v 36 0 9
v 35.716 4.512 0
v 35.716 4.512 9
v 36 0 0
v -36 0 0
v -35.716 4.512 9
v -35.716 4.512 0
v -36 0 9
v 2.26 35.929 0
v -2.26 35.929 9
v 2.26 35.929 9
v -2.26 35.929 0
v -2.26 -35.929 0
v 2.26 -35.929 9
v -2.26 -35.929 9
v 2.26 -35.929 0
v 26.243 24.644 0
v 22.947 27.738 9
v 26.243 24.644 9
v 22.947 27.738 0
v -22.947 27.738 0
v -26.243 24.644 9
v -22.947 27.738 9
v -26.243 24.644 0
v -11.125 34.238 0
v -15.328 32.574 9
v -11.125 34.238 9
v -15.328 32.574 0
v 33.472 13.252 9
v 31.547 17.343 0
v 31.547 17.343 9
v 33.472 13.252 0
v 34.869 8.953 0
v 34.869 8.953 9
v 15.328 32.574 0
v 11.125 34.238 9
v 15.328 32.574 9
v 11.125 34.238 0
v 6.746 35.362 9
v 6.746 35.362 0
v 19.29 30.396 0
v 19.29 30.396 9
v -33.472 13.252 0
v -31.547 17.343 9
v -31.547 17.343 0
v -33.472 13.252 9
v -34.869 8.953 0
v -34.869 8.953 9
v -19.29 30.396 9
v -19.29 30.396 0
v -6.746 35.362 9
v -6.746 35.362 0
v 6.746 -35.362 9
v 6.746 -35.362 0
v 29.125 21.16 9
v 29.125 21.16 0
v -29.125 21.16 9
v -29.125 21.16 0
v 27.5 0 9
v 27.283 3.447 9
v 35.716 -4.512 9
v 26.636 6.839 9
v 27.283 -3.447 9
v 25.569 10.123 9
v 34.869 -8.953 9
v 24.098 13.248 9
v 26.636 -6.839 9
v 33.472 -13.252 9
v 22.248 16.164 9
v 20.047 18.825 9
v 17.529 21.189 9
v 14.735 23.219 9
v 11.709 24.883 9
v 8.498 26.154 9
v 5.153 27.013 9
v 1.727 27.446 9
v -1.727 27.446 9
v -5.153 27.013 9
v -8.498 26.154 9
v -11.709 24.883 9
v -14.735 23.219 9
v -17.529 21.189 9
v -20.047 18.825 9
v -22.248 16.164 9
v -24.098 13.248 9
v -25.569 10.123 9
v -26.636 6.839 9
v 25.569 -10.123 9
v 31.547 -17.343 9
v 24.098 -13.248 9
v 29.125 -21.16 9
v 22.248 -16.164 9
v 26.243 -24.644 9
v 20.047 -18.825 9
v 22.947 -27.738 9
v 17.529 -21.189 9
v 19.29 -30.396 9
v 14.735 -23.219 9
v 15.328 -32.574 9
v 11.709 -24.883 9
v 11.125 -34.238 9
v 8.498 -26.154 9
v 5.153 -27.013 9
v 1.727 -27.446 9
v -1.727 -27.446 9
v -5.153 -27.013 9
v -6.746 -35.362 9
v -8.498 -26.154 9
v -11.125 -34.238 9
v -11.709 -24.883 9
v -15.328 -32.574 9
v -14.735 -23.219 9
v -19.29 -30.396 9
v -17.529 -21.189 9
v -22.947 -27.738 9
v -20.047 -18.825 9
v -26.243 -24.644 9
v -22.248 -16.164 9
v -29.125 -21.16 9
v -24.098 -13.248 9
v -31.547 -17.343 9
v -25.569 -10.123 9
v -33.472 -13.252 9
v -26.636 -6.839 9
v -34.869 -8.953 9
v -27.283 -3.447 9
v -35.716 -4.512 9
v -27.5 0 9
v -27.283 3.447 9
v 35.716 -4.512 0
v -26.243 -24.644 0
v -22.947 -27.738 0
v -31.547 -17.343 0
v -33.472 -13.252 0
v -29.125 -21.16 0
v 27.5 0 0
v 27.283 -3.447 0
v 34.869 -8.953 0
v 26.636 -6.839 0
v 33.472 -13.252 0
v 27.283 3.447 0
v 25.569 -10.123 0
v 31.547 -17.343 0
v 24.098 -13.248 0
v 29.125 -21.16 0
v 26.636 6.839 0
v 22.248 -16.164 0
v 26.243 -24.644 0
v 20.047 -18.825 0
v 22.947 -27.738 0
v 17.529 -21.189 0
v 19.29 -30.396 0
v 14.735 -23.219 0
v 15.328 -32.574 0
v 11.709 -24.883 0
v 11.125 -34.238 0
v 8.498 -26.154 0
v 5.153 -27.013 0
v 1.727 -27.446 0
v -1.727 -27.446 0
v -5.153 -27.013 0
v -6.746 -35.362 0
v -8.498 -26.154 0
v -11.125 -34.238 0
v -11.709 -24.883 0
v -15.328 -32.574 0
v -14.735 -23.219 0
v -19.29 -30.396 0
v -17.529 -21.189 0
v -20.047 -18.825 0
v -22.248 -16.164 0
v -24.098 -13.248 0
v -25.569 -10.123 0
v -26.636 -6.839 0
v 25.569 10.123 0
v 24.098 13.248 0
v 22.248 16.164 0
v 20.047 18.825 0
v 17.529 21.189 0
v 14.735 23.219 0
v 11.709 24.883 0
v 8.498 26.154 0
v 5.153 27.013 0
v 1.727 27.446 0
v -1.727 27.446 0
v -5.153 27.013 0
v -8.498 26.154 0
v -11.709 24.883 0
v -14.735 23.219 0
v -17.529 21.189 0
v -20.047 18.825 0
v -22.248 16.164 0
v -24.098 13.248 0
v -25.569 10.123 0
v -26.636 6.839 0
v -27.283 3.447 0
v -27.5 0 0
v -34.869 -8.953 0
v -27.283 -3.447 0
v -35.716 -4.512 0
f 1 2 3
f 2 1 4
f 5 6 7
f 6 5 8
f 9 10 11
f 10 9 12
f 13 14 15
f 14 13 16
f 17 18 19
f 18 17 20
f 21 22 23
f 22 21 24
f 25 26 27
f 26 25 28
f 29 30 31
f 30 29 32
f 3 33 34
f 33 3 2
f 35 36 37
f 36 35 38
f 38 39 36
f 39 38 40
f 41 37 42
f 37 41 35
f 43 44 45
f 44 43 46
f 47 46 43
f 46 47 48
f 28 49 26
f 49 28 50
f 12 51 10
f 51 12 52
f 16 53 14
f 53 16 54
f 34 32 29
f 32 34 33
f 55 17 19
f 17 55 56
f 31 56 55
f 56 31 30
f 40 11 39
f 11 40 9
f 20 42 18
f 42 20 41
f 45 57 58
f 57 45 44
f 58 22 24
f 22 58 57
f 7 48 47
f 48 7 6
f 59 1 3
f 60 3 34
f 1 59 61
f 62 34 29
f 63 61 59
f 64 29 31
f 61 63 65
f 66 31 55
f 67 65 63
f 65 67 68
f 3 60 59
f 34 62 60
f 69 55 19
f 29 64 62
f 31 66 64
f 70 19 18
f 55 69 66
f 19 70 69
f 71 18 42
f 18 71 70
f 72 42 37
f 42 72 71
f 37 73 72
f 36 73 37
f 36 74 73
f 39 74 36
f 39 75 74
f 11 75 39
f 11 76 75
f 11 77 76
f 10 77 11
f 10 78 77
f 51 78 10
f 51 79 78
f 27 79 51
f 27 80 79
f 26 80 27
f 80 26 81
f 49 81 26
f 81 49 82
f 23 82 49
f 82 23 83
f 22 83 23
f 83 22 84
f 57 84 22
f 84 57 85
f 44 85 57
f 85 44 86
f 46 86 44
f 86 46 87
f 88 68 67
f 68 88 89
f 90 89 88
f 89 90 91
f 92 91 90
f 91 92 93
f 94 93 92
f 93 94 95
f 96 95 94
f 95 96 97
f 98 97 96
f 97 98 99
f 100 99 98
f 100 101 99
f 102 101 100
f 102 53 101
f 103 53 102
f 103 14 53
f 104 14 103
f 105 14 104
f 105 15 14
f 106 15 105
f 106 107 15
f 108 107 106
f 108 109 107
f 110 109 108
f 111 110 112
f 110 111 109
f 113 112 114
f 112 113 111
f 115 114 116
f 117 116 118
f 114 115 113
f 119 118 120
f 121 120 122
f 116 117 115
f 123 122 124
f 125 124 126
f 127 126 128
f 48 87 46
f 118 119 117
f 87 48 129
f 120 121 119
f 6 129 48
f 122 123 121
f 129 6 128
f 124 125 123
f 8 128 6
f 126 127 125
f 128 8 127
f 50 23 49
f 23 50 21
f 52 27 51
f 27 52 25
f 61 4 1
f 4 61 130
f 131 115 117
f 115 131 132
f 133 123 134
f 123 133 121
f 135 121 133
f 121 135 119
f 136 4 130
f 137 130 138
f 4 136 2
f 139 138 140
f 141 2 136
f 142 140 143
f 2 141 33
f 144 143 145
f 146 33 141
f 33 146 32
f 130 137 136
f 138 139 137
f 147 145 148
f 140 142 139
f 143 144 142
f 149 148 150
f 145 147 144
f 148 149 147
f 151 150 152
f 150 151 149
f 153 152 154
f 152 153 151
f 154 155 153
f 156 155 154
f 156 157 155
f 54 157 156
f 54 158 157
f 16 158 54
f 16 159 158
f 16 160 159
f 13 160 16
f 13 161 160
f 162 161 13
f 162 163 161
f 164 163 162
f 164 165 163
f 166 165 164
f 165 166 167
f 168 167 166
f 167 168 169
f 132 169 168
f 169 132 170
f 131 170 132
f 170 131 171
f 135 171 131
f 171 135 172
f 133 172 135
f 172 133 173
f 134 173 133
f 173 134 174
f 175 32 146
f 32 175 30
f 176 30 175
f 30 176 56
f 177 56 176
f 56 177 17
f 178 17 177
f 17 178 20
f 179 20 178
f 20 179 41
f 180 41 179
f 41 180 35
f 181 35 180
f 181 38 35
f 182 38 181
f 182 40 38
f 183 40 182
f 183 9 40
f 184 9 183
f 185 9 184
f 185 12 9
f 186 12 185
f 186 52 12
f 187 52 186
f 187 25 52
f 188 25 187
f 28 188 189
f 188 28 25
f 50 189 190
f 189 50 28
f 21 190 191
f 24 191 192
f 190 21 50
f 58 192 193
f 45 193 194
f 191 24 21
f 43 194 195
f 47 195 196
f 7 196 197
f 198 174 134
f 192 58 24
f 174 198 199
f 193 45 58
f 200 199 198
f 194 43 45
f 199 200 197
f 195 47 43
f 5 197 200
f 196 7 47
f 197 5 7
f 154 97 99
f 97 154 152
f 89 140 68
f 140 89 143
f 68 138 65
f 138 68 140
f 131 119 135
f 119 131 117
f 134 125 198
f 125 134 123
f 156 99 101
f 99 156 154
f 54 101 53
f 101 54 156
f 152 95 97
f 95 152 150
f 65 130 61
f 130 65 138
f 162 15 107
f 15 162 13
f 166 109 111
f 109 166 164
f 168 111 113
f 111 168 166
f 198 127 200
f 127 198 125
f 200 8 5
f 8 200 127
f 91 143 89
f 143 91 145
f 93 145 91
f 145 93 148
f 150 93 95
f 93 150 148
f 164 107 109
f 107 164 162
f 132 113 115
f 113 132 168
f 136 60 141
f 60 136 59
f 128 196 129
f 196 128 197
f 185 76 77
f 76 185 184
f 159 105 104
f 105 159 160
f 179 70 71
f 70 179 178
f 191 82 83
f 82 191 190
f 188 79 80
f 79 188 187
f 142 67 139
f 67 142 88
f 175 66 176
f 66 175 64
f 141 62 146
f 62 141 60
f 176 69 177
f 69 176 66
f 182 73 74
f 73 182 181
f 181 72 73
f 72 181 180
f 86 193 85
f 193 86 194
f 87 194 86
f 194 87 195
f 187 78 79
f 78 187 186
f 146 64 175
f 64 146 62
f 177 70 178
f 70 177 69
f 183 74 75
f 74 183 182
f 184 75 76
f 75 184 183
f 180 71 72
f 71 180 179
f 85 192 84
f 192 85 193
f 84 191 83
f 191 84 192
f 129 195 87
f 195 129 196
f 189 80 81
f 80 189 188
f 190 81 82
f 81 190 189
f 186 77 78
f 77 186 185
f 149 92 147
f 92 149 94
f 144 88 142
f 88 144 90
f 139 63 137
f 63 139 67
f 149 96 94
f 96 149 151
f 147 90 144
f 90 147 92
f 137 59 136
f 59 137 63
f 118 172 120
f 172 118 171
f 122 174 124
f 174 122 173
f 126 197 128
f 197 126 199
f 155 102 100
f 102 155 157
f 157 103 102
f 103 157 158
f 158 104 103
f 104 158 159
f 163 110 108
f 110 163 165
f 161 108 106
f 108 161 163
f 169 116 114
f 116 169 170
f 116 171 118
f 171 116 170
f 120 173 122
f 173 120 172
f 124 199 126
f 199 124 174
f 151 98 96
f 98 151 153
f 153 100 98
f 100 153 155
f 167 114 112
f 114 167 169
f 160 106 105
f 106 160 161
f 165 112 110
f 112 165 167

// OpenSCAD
$fn = 50;


difference() {
	union() {
		cylinder(h = 9, r = 36.0000000000);
	}
	union() {
		cylinder(h = 9, r = 27.5000000000);
	}
}
